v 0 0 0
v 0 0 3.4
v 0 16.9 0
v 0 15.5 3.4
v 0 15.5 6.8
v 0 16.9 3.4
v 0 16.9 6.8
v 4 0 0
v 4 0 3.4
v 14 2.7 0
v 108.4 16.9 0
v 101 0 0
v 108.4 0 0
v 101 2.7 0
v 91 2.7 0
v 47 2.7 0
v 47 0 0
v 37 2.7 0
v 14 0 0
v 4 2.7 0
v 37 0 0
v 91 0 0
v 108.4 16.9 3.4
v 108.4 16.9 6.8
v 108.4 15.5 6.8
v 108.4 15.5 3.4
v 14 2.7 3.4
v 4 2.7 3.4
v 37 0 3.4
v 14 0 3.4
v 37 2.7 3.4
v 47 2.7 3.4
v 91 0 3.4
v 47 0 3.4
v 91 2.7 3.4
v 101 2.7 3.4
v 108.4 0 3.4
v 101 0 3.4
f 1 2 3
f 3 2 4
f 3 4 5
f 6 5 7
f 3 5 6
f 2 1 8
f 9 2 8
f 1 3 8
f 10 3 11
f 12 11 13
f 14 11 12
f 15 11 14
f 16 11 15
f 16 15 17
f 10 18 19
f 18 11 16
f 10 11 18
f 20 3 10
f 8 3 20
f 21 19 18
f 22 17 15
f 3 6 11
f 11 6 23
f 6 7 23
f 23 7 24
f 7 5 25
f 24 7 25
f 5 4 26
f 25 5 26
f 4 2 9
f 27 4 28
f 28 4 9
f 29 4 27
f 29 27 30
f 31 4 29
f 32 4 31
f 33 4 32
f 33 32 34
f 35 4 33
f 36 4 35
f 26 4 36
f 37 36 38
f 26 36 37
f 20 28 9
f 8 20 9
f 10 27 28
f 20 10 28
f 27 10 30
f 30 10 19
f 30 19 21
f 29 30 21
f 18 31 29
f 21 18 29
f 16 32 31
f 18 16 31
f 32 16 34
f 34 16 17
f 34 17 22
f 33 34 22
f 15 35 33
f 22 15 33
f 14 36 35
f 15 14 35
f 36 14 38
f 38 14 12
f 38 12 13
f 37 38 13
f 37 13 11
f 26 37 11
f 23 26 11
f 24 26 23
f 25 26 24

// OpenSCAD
h = 4;
b = 17.5;
l = 109;

h2 = 4;
b2 = 2;

d = -0.3;

ba = 3;
la = 10;

a1 = 4;
a2 = a1 + 33;
a3 = a2 + 54;
difference(){
	union(){
		cube([l+2*d,b+2*d,h+2*d]);
		translate([0,b-b2,h+2*d]) cube([l+2*d,b2+2*d,h2+2*d]);
	}
	translate([a1,d,-0.5*d-h/2]) cube([la,ba,2*d+2*h]);
	translate([a2,d,-0.5*d-h/2]) cube([la,ba,2*d+2*h]);
	translate([a3,d,-0.5*d-h/2]) cube([la,ba,2*d+2*h]);

}
